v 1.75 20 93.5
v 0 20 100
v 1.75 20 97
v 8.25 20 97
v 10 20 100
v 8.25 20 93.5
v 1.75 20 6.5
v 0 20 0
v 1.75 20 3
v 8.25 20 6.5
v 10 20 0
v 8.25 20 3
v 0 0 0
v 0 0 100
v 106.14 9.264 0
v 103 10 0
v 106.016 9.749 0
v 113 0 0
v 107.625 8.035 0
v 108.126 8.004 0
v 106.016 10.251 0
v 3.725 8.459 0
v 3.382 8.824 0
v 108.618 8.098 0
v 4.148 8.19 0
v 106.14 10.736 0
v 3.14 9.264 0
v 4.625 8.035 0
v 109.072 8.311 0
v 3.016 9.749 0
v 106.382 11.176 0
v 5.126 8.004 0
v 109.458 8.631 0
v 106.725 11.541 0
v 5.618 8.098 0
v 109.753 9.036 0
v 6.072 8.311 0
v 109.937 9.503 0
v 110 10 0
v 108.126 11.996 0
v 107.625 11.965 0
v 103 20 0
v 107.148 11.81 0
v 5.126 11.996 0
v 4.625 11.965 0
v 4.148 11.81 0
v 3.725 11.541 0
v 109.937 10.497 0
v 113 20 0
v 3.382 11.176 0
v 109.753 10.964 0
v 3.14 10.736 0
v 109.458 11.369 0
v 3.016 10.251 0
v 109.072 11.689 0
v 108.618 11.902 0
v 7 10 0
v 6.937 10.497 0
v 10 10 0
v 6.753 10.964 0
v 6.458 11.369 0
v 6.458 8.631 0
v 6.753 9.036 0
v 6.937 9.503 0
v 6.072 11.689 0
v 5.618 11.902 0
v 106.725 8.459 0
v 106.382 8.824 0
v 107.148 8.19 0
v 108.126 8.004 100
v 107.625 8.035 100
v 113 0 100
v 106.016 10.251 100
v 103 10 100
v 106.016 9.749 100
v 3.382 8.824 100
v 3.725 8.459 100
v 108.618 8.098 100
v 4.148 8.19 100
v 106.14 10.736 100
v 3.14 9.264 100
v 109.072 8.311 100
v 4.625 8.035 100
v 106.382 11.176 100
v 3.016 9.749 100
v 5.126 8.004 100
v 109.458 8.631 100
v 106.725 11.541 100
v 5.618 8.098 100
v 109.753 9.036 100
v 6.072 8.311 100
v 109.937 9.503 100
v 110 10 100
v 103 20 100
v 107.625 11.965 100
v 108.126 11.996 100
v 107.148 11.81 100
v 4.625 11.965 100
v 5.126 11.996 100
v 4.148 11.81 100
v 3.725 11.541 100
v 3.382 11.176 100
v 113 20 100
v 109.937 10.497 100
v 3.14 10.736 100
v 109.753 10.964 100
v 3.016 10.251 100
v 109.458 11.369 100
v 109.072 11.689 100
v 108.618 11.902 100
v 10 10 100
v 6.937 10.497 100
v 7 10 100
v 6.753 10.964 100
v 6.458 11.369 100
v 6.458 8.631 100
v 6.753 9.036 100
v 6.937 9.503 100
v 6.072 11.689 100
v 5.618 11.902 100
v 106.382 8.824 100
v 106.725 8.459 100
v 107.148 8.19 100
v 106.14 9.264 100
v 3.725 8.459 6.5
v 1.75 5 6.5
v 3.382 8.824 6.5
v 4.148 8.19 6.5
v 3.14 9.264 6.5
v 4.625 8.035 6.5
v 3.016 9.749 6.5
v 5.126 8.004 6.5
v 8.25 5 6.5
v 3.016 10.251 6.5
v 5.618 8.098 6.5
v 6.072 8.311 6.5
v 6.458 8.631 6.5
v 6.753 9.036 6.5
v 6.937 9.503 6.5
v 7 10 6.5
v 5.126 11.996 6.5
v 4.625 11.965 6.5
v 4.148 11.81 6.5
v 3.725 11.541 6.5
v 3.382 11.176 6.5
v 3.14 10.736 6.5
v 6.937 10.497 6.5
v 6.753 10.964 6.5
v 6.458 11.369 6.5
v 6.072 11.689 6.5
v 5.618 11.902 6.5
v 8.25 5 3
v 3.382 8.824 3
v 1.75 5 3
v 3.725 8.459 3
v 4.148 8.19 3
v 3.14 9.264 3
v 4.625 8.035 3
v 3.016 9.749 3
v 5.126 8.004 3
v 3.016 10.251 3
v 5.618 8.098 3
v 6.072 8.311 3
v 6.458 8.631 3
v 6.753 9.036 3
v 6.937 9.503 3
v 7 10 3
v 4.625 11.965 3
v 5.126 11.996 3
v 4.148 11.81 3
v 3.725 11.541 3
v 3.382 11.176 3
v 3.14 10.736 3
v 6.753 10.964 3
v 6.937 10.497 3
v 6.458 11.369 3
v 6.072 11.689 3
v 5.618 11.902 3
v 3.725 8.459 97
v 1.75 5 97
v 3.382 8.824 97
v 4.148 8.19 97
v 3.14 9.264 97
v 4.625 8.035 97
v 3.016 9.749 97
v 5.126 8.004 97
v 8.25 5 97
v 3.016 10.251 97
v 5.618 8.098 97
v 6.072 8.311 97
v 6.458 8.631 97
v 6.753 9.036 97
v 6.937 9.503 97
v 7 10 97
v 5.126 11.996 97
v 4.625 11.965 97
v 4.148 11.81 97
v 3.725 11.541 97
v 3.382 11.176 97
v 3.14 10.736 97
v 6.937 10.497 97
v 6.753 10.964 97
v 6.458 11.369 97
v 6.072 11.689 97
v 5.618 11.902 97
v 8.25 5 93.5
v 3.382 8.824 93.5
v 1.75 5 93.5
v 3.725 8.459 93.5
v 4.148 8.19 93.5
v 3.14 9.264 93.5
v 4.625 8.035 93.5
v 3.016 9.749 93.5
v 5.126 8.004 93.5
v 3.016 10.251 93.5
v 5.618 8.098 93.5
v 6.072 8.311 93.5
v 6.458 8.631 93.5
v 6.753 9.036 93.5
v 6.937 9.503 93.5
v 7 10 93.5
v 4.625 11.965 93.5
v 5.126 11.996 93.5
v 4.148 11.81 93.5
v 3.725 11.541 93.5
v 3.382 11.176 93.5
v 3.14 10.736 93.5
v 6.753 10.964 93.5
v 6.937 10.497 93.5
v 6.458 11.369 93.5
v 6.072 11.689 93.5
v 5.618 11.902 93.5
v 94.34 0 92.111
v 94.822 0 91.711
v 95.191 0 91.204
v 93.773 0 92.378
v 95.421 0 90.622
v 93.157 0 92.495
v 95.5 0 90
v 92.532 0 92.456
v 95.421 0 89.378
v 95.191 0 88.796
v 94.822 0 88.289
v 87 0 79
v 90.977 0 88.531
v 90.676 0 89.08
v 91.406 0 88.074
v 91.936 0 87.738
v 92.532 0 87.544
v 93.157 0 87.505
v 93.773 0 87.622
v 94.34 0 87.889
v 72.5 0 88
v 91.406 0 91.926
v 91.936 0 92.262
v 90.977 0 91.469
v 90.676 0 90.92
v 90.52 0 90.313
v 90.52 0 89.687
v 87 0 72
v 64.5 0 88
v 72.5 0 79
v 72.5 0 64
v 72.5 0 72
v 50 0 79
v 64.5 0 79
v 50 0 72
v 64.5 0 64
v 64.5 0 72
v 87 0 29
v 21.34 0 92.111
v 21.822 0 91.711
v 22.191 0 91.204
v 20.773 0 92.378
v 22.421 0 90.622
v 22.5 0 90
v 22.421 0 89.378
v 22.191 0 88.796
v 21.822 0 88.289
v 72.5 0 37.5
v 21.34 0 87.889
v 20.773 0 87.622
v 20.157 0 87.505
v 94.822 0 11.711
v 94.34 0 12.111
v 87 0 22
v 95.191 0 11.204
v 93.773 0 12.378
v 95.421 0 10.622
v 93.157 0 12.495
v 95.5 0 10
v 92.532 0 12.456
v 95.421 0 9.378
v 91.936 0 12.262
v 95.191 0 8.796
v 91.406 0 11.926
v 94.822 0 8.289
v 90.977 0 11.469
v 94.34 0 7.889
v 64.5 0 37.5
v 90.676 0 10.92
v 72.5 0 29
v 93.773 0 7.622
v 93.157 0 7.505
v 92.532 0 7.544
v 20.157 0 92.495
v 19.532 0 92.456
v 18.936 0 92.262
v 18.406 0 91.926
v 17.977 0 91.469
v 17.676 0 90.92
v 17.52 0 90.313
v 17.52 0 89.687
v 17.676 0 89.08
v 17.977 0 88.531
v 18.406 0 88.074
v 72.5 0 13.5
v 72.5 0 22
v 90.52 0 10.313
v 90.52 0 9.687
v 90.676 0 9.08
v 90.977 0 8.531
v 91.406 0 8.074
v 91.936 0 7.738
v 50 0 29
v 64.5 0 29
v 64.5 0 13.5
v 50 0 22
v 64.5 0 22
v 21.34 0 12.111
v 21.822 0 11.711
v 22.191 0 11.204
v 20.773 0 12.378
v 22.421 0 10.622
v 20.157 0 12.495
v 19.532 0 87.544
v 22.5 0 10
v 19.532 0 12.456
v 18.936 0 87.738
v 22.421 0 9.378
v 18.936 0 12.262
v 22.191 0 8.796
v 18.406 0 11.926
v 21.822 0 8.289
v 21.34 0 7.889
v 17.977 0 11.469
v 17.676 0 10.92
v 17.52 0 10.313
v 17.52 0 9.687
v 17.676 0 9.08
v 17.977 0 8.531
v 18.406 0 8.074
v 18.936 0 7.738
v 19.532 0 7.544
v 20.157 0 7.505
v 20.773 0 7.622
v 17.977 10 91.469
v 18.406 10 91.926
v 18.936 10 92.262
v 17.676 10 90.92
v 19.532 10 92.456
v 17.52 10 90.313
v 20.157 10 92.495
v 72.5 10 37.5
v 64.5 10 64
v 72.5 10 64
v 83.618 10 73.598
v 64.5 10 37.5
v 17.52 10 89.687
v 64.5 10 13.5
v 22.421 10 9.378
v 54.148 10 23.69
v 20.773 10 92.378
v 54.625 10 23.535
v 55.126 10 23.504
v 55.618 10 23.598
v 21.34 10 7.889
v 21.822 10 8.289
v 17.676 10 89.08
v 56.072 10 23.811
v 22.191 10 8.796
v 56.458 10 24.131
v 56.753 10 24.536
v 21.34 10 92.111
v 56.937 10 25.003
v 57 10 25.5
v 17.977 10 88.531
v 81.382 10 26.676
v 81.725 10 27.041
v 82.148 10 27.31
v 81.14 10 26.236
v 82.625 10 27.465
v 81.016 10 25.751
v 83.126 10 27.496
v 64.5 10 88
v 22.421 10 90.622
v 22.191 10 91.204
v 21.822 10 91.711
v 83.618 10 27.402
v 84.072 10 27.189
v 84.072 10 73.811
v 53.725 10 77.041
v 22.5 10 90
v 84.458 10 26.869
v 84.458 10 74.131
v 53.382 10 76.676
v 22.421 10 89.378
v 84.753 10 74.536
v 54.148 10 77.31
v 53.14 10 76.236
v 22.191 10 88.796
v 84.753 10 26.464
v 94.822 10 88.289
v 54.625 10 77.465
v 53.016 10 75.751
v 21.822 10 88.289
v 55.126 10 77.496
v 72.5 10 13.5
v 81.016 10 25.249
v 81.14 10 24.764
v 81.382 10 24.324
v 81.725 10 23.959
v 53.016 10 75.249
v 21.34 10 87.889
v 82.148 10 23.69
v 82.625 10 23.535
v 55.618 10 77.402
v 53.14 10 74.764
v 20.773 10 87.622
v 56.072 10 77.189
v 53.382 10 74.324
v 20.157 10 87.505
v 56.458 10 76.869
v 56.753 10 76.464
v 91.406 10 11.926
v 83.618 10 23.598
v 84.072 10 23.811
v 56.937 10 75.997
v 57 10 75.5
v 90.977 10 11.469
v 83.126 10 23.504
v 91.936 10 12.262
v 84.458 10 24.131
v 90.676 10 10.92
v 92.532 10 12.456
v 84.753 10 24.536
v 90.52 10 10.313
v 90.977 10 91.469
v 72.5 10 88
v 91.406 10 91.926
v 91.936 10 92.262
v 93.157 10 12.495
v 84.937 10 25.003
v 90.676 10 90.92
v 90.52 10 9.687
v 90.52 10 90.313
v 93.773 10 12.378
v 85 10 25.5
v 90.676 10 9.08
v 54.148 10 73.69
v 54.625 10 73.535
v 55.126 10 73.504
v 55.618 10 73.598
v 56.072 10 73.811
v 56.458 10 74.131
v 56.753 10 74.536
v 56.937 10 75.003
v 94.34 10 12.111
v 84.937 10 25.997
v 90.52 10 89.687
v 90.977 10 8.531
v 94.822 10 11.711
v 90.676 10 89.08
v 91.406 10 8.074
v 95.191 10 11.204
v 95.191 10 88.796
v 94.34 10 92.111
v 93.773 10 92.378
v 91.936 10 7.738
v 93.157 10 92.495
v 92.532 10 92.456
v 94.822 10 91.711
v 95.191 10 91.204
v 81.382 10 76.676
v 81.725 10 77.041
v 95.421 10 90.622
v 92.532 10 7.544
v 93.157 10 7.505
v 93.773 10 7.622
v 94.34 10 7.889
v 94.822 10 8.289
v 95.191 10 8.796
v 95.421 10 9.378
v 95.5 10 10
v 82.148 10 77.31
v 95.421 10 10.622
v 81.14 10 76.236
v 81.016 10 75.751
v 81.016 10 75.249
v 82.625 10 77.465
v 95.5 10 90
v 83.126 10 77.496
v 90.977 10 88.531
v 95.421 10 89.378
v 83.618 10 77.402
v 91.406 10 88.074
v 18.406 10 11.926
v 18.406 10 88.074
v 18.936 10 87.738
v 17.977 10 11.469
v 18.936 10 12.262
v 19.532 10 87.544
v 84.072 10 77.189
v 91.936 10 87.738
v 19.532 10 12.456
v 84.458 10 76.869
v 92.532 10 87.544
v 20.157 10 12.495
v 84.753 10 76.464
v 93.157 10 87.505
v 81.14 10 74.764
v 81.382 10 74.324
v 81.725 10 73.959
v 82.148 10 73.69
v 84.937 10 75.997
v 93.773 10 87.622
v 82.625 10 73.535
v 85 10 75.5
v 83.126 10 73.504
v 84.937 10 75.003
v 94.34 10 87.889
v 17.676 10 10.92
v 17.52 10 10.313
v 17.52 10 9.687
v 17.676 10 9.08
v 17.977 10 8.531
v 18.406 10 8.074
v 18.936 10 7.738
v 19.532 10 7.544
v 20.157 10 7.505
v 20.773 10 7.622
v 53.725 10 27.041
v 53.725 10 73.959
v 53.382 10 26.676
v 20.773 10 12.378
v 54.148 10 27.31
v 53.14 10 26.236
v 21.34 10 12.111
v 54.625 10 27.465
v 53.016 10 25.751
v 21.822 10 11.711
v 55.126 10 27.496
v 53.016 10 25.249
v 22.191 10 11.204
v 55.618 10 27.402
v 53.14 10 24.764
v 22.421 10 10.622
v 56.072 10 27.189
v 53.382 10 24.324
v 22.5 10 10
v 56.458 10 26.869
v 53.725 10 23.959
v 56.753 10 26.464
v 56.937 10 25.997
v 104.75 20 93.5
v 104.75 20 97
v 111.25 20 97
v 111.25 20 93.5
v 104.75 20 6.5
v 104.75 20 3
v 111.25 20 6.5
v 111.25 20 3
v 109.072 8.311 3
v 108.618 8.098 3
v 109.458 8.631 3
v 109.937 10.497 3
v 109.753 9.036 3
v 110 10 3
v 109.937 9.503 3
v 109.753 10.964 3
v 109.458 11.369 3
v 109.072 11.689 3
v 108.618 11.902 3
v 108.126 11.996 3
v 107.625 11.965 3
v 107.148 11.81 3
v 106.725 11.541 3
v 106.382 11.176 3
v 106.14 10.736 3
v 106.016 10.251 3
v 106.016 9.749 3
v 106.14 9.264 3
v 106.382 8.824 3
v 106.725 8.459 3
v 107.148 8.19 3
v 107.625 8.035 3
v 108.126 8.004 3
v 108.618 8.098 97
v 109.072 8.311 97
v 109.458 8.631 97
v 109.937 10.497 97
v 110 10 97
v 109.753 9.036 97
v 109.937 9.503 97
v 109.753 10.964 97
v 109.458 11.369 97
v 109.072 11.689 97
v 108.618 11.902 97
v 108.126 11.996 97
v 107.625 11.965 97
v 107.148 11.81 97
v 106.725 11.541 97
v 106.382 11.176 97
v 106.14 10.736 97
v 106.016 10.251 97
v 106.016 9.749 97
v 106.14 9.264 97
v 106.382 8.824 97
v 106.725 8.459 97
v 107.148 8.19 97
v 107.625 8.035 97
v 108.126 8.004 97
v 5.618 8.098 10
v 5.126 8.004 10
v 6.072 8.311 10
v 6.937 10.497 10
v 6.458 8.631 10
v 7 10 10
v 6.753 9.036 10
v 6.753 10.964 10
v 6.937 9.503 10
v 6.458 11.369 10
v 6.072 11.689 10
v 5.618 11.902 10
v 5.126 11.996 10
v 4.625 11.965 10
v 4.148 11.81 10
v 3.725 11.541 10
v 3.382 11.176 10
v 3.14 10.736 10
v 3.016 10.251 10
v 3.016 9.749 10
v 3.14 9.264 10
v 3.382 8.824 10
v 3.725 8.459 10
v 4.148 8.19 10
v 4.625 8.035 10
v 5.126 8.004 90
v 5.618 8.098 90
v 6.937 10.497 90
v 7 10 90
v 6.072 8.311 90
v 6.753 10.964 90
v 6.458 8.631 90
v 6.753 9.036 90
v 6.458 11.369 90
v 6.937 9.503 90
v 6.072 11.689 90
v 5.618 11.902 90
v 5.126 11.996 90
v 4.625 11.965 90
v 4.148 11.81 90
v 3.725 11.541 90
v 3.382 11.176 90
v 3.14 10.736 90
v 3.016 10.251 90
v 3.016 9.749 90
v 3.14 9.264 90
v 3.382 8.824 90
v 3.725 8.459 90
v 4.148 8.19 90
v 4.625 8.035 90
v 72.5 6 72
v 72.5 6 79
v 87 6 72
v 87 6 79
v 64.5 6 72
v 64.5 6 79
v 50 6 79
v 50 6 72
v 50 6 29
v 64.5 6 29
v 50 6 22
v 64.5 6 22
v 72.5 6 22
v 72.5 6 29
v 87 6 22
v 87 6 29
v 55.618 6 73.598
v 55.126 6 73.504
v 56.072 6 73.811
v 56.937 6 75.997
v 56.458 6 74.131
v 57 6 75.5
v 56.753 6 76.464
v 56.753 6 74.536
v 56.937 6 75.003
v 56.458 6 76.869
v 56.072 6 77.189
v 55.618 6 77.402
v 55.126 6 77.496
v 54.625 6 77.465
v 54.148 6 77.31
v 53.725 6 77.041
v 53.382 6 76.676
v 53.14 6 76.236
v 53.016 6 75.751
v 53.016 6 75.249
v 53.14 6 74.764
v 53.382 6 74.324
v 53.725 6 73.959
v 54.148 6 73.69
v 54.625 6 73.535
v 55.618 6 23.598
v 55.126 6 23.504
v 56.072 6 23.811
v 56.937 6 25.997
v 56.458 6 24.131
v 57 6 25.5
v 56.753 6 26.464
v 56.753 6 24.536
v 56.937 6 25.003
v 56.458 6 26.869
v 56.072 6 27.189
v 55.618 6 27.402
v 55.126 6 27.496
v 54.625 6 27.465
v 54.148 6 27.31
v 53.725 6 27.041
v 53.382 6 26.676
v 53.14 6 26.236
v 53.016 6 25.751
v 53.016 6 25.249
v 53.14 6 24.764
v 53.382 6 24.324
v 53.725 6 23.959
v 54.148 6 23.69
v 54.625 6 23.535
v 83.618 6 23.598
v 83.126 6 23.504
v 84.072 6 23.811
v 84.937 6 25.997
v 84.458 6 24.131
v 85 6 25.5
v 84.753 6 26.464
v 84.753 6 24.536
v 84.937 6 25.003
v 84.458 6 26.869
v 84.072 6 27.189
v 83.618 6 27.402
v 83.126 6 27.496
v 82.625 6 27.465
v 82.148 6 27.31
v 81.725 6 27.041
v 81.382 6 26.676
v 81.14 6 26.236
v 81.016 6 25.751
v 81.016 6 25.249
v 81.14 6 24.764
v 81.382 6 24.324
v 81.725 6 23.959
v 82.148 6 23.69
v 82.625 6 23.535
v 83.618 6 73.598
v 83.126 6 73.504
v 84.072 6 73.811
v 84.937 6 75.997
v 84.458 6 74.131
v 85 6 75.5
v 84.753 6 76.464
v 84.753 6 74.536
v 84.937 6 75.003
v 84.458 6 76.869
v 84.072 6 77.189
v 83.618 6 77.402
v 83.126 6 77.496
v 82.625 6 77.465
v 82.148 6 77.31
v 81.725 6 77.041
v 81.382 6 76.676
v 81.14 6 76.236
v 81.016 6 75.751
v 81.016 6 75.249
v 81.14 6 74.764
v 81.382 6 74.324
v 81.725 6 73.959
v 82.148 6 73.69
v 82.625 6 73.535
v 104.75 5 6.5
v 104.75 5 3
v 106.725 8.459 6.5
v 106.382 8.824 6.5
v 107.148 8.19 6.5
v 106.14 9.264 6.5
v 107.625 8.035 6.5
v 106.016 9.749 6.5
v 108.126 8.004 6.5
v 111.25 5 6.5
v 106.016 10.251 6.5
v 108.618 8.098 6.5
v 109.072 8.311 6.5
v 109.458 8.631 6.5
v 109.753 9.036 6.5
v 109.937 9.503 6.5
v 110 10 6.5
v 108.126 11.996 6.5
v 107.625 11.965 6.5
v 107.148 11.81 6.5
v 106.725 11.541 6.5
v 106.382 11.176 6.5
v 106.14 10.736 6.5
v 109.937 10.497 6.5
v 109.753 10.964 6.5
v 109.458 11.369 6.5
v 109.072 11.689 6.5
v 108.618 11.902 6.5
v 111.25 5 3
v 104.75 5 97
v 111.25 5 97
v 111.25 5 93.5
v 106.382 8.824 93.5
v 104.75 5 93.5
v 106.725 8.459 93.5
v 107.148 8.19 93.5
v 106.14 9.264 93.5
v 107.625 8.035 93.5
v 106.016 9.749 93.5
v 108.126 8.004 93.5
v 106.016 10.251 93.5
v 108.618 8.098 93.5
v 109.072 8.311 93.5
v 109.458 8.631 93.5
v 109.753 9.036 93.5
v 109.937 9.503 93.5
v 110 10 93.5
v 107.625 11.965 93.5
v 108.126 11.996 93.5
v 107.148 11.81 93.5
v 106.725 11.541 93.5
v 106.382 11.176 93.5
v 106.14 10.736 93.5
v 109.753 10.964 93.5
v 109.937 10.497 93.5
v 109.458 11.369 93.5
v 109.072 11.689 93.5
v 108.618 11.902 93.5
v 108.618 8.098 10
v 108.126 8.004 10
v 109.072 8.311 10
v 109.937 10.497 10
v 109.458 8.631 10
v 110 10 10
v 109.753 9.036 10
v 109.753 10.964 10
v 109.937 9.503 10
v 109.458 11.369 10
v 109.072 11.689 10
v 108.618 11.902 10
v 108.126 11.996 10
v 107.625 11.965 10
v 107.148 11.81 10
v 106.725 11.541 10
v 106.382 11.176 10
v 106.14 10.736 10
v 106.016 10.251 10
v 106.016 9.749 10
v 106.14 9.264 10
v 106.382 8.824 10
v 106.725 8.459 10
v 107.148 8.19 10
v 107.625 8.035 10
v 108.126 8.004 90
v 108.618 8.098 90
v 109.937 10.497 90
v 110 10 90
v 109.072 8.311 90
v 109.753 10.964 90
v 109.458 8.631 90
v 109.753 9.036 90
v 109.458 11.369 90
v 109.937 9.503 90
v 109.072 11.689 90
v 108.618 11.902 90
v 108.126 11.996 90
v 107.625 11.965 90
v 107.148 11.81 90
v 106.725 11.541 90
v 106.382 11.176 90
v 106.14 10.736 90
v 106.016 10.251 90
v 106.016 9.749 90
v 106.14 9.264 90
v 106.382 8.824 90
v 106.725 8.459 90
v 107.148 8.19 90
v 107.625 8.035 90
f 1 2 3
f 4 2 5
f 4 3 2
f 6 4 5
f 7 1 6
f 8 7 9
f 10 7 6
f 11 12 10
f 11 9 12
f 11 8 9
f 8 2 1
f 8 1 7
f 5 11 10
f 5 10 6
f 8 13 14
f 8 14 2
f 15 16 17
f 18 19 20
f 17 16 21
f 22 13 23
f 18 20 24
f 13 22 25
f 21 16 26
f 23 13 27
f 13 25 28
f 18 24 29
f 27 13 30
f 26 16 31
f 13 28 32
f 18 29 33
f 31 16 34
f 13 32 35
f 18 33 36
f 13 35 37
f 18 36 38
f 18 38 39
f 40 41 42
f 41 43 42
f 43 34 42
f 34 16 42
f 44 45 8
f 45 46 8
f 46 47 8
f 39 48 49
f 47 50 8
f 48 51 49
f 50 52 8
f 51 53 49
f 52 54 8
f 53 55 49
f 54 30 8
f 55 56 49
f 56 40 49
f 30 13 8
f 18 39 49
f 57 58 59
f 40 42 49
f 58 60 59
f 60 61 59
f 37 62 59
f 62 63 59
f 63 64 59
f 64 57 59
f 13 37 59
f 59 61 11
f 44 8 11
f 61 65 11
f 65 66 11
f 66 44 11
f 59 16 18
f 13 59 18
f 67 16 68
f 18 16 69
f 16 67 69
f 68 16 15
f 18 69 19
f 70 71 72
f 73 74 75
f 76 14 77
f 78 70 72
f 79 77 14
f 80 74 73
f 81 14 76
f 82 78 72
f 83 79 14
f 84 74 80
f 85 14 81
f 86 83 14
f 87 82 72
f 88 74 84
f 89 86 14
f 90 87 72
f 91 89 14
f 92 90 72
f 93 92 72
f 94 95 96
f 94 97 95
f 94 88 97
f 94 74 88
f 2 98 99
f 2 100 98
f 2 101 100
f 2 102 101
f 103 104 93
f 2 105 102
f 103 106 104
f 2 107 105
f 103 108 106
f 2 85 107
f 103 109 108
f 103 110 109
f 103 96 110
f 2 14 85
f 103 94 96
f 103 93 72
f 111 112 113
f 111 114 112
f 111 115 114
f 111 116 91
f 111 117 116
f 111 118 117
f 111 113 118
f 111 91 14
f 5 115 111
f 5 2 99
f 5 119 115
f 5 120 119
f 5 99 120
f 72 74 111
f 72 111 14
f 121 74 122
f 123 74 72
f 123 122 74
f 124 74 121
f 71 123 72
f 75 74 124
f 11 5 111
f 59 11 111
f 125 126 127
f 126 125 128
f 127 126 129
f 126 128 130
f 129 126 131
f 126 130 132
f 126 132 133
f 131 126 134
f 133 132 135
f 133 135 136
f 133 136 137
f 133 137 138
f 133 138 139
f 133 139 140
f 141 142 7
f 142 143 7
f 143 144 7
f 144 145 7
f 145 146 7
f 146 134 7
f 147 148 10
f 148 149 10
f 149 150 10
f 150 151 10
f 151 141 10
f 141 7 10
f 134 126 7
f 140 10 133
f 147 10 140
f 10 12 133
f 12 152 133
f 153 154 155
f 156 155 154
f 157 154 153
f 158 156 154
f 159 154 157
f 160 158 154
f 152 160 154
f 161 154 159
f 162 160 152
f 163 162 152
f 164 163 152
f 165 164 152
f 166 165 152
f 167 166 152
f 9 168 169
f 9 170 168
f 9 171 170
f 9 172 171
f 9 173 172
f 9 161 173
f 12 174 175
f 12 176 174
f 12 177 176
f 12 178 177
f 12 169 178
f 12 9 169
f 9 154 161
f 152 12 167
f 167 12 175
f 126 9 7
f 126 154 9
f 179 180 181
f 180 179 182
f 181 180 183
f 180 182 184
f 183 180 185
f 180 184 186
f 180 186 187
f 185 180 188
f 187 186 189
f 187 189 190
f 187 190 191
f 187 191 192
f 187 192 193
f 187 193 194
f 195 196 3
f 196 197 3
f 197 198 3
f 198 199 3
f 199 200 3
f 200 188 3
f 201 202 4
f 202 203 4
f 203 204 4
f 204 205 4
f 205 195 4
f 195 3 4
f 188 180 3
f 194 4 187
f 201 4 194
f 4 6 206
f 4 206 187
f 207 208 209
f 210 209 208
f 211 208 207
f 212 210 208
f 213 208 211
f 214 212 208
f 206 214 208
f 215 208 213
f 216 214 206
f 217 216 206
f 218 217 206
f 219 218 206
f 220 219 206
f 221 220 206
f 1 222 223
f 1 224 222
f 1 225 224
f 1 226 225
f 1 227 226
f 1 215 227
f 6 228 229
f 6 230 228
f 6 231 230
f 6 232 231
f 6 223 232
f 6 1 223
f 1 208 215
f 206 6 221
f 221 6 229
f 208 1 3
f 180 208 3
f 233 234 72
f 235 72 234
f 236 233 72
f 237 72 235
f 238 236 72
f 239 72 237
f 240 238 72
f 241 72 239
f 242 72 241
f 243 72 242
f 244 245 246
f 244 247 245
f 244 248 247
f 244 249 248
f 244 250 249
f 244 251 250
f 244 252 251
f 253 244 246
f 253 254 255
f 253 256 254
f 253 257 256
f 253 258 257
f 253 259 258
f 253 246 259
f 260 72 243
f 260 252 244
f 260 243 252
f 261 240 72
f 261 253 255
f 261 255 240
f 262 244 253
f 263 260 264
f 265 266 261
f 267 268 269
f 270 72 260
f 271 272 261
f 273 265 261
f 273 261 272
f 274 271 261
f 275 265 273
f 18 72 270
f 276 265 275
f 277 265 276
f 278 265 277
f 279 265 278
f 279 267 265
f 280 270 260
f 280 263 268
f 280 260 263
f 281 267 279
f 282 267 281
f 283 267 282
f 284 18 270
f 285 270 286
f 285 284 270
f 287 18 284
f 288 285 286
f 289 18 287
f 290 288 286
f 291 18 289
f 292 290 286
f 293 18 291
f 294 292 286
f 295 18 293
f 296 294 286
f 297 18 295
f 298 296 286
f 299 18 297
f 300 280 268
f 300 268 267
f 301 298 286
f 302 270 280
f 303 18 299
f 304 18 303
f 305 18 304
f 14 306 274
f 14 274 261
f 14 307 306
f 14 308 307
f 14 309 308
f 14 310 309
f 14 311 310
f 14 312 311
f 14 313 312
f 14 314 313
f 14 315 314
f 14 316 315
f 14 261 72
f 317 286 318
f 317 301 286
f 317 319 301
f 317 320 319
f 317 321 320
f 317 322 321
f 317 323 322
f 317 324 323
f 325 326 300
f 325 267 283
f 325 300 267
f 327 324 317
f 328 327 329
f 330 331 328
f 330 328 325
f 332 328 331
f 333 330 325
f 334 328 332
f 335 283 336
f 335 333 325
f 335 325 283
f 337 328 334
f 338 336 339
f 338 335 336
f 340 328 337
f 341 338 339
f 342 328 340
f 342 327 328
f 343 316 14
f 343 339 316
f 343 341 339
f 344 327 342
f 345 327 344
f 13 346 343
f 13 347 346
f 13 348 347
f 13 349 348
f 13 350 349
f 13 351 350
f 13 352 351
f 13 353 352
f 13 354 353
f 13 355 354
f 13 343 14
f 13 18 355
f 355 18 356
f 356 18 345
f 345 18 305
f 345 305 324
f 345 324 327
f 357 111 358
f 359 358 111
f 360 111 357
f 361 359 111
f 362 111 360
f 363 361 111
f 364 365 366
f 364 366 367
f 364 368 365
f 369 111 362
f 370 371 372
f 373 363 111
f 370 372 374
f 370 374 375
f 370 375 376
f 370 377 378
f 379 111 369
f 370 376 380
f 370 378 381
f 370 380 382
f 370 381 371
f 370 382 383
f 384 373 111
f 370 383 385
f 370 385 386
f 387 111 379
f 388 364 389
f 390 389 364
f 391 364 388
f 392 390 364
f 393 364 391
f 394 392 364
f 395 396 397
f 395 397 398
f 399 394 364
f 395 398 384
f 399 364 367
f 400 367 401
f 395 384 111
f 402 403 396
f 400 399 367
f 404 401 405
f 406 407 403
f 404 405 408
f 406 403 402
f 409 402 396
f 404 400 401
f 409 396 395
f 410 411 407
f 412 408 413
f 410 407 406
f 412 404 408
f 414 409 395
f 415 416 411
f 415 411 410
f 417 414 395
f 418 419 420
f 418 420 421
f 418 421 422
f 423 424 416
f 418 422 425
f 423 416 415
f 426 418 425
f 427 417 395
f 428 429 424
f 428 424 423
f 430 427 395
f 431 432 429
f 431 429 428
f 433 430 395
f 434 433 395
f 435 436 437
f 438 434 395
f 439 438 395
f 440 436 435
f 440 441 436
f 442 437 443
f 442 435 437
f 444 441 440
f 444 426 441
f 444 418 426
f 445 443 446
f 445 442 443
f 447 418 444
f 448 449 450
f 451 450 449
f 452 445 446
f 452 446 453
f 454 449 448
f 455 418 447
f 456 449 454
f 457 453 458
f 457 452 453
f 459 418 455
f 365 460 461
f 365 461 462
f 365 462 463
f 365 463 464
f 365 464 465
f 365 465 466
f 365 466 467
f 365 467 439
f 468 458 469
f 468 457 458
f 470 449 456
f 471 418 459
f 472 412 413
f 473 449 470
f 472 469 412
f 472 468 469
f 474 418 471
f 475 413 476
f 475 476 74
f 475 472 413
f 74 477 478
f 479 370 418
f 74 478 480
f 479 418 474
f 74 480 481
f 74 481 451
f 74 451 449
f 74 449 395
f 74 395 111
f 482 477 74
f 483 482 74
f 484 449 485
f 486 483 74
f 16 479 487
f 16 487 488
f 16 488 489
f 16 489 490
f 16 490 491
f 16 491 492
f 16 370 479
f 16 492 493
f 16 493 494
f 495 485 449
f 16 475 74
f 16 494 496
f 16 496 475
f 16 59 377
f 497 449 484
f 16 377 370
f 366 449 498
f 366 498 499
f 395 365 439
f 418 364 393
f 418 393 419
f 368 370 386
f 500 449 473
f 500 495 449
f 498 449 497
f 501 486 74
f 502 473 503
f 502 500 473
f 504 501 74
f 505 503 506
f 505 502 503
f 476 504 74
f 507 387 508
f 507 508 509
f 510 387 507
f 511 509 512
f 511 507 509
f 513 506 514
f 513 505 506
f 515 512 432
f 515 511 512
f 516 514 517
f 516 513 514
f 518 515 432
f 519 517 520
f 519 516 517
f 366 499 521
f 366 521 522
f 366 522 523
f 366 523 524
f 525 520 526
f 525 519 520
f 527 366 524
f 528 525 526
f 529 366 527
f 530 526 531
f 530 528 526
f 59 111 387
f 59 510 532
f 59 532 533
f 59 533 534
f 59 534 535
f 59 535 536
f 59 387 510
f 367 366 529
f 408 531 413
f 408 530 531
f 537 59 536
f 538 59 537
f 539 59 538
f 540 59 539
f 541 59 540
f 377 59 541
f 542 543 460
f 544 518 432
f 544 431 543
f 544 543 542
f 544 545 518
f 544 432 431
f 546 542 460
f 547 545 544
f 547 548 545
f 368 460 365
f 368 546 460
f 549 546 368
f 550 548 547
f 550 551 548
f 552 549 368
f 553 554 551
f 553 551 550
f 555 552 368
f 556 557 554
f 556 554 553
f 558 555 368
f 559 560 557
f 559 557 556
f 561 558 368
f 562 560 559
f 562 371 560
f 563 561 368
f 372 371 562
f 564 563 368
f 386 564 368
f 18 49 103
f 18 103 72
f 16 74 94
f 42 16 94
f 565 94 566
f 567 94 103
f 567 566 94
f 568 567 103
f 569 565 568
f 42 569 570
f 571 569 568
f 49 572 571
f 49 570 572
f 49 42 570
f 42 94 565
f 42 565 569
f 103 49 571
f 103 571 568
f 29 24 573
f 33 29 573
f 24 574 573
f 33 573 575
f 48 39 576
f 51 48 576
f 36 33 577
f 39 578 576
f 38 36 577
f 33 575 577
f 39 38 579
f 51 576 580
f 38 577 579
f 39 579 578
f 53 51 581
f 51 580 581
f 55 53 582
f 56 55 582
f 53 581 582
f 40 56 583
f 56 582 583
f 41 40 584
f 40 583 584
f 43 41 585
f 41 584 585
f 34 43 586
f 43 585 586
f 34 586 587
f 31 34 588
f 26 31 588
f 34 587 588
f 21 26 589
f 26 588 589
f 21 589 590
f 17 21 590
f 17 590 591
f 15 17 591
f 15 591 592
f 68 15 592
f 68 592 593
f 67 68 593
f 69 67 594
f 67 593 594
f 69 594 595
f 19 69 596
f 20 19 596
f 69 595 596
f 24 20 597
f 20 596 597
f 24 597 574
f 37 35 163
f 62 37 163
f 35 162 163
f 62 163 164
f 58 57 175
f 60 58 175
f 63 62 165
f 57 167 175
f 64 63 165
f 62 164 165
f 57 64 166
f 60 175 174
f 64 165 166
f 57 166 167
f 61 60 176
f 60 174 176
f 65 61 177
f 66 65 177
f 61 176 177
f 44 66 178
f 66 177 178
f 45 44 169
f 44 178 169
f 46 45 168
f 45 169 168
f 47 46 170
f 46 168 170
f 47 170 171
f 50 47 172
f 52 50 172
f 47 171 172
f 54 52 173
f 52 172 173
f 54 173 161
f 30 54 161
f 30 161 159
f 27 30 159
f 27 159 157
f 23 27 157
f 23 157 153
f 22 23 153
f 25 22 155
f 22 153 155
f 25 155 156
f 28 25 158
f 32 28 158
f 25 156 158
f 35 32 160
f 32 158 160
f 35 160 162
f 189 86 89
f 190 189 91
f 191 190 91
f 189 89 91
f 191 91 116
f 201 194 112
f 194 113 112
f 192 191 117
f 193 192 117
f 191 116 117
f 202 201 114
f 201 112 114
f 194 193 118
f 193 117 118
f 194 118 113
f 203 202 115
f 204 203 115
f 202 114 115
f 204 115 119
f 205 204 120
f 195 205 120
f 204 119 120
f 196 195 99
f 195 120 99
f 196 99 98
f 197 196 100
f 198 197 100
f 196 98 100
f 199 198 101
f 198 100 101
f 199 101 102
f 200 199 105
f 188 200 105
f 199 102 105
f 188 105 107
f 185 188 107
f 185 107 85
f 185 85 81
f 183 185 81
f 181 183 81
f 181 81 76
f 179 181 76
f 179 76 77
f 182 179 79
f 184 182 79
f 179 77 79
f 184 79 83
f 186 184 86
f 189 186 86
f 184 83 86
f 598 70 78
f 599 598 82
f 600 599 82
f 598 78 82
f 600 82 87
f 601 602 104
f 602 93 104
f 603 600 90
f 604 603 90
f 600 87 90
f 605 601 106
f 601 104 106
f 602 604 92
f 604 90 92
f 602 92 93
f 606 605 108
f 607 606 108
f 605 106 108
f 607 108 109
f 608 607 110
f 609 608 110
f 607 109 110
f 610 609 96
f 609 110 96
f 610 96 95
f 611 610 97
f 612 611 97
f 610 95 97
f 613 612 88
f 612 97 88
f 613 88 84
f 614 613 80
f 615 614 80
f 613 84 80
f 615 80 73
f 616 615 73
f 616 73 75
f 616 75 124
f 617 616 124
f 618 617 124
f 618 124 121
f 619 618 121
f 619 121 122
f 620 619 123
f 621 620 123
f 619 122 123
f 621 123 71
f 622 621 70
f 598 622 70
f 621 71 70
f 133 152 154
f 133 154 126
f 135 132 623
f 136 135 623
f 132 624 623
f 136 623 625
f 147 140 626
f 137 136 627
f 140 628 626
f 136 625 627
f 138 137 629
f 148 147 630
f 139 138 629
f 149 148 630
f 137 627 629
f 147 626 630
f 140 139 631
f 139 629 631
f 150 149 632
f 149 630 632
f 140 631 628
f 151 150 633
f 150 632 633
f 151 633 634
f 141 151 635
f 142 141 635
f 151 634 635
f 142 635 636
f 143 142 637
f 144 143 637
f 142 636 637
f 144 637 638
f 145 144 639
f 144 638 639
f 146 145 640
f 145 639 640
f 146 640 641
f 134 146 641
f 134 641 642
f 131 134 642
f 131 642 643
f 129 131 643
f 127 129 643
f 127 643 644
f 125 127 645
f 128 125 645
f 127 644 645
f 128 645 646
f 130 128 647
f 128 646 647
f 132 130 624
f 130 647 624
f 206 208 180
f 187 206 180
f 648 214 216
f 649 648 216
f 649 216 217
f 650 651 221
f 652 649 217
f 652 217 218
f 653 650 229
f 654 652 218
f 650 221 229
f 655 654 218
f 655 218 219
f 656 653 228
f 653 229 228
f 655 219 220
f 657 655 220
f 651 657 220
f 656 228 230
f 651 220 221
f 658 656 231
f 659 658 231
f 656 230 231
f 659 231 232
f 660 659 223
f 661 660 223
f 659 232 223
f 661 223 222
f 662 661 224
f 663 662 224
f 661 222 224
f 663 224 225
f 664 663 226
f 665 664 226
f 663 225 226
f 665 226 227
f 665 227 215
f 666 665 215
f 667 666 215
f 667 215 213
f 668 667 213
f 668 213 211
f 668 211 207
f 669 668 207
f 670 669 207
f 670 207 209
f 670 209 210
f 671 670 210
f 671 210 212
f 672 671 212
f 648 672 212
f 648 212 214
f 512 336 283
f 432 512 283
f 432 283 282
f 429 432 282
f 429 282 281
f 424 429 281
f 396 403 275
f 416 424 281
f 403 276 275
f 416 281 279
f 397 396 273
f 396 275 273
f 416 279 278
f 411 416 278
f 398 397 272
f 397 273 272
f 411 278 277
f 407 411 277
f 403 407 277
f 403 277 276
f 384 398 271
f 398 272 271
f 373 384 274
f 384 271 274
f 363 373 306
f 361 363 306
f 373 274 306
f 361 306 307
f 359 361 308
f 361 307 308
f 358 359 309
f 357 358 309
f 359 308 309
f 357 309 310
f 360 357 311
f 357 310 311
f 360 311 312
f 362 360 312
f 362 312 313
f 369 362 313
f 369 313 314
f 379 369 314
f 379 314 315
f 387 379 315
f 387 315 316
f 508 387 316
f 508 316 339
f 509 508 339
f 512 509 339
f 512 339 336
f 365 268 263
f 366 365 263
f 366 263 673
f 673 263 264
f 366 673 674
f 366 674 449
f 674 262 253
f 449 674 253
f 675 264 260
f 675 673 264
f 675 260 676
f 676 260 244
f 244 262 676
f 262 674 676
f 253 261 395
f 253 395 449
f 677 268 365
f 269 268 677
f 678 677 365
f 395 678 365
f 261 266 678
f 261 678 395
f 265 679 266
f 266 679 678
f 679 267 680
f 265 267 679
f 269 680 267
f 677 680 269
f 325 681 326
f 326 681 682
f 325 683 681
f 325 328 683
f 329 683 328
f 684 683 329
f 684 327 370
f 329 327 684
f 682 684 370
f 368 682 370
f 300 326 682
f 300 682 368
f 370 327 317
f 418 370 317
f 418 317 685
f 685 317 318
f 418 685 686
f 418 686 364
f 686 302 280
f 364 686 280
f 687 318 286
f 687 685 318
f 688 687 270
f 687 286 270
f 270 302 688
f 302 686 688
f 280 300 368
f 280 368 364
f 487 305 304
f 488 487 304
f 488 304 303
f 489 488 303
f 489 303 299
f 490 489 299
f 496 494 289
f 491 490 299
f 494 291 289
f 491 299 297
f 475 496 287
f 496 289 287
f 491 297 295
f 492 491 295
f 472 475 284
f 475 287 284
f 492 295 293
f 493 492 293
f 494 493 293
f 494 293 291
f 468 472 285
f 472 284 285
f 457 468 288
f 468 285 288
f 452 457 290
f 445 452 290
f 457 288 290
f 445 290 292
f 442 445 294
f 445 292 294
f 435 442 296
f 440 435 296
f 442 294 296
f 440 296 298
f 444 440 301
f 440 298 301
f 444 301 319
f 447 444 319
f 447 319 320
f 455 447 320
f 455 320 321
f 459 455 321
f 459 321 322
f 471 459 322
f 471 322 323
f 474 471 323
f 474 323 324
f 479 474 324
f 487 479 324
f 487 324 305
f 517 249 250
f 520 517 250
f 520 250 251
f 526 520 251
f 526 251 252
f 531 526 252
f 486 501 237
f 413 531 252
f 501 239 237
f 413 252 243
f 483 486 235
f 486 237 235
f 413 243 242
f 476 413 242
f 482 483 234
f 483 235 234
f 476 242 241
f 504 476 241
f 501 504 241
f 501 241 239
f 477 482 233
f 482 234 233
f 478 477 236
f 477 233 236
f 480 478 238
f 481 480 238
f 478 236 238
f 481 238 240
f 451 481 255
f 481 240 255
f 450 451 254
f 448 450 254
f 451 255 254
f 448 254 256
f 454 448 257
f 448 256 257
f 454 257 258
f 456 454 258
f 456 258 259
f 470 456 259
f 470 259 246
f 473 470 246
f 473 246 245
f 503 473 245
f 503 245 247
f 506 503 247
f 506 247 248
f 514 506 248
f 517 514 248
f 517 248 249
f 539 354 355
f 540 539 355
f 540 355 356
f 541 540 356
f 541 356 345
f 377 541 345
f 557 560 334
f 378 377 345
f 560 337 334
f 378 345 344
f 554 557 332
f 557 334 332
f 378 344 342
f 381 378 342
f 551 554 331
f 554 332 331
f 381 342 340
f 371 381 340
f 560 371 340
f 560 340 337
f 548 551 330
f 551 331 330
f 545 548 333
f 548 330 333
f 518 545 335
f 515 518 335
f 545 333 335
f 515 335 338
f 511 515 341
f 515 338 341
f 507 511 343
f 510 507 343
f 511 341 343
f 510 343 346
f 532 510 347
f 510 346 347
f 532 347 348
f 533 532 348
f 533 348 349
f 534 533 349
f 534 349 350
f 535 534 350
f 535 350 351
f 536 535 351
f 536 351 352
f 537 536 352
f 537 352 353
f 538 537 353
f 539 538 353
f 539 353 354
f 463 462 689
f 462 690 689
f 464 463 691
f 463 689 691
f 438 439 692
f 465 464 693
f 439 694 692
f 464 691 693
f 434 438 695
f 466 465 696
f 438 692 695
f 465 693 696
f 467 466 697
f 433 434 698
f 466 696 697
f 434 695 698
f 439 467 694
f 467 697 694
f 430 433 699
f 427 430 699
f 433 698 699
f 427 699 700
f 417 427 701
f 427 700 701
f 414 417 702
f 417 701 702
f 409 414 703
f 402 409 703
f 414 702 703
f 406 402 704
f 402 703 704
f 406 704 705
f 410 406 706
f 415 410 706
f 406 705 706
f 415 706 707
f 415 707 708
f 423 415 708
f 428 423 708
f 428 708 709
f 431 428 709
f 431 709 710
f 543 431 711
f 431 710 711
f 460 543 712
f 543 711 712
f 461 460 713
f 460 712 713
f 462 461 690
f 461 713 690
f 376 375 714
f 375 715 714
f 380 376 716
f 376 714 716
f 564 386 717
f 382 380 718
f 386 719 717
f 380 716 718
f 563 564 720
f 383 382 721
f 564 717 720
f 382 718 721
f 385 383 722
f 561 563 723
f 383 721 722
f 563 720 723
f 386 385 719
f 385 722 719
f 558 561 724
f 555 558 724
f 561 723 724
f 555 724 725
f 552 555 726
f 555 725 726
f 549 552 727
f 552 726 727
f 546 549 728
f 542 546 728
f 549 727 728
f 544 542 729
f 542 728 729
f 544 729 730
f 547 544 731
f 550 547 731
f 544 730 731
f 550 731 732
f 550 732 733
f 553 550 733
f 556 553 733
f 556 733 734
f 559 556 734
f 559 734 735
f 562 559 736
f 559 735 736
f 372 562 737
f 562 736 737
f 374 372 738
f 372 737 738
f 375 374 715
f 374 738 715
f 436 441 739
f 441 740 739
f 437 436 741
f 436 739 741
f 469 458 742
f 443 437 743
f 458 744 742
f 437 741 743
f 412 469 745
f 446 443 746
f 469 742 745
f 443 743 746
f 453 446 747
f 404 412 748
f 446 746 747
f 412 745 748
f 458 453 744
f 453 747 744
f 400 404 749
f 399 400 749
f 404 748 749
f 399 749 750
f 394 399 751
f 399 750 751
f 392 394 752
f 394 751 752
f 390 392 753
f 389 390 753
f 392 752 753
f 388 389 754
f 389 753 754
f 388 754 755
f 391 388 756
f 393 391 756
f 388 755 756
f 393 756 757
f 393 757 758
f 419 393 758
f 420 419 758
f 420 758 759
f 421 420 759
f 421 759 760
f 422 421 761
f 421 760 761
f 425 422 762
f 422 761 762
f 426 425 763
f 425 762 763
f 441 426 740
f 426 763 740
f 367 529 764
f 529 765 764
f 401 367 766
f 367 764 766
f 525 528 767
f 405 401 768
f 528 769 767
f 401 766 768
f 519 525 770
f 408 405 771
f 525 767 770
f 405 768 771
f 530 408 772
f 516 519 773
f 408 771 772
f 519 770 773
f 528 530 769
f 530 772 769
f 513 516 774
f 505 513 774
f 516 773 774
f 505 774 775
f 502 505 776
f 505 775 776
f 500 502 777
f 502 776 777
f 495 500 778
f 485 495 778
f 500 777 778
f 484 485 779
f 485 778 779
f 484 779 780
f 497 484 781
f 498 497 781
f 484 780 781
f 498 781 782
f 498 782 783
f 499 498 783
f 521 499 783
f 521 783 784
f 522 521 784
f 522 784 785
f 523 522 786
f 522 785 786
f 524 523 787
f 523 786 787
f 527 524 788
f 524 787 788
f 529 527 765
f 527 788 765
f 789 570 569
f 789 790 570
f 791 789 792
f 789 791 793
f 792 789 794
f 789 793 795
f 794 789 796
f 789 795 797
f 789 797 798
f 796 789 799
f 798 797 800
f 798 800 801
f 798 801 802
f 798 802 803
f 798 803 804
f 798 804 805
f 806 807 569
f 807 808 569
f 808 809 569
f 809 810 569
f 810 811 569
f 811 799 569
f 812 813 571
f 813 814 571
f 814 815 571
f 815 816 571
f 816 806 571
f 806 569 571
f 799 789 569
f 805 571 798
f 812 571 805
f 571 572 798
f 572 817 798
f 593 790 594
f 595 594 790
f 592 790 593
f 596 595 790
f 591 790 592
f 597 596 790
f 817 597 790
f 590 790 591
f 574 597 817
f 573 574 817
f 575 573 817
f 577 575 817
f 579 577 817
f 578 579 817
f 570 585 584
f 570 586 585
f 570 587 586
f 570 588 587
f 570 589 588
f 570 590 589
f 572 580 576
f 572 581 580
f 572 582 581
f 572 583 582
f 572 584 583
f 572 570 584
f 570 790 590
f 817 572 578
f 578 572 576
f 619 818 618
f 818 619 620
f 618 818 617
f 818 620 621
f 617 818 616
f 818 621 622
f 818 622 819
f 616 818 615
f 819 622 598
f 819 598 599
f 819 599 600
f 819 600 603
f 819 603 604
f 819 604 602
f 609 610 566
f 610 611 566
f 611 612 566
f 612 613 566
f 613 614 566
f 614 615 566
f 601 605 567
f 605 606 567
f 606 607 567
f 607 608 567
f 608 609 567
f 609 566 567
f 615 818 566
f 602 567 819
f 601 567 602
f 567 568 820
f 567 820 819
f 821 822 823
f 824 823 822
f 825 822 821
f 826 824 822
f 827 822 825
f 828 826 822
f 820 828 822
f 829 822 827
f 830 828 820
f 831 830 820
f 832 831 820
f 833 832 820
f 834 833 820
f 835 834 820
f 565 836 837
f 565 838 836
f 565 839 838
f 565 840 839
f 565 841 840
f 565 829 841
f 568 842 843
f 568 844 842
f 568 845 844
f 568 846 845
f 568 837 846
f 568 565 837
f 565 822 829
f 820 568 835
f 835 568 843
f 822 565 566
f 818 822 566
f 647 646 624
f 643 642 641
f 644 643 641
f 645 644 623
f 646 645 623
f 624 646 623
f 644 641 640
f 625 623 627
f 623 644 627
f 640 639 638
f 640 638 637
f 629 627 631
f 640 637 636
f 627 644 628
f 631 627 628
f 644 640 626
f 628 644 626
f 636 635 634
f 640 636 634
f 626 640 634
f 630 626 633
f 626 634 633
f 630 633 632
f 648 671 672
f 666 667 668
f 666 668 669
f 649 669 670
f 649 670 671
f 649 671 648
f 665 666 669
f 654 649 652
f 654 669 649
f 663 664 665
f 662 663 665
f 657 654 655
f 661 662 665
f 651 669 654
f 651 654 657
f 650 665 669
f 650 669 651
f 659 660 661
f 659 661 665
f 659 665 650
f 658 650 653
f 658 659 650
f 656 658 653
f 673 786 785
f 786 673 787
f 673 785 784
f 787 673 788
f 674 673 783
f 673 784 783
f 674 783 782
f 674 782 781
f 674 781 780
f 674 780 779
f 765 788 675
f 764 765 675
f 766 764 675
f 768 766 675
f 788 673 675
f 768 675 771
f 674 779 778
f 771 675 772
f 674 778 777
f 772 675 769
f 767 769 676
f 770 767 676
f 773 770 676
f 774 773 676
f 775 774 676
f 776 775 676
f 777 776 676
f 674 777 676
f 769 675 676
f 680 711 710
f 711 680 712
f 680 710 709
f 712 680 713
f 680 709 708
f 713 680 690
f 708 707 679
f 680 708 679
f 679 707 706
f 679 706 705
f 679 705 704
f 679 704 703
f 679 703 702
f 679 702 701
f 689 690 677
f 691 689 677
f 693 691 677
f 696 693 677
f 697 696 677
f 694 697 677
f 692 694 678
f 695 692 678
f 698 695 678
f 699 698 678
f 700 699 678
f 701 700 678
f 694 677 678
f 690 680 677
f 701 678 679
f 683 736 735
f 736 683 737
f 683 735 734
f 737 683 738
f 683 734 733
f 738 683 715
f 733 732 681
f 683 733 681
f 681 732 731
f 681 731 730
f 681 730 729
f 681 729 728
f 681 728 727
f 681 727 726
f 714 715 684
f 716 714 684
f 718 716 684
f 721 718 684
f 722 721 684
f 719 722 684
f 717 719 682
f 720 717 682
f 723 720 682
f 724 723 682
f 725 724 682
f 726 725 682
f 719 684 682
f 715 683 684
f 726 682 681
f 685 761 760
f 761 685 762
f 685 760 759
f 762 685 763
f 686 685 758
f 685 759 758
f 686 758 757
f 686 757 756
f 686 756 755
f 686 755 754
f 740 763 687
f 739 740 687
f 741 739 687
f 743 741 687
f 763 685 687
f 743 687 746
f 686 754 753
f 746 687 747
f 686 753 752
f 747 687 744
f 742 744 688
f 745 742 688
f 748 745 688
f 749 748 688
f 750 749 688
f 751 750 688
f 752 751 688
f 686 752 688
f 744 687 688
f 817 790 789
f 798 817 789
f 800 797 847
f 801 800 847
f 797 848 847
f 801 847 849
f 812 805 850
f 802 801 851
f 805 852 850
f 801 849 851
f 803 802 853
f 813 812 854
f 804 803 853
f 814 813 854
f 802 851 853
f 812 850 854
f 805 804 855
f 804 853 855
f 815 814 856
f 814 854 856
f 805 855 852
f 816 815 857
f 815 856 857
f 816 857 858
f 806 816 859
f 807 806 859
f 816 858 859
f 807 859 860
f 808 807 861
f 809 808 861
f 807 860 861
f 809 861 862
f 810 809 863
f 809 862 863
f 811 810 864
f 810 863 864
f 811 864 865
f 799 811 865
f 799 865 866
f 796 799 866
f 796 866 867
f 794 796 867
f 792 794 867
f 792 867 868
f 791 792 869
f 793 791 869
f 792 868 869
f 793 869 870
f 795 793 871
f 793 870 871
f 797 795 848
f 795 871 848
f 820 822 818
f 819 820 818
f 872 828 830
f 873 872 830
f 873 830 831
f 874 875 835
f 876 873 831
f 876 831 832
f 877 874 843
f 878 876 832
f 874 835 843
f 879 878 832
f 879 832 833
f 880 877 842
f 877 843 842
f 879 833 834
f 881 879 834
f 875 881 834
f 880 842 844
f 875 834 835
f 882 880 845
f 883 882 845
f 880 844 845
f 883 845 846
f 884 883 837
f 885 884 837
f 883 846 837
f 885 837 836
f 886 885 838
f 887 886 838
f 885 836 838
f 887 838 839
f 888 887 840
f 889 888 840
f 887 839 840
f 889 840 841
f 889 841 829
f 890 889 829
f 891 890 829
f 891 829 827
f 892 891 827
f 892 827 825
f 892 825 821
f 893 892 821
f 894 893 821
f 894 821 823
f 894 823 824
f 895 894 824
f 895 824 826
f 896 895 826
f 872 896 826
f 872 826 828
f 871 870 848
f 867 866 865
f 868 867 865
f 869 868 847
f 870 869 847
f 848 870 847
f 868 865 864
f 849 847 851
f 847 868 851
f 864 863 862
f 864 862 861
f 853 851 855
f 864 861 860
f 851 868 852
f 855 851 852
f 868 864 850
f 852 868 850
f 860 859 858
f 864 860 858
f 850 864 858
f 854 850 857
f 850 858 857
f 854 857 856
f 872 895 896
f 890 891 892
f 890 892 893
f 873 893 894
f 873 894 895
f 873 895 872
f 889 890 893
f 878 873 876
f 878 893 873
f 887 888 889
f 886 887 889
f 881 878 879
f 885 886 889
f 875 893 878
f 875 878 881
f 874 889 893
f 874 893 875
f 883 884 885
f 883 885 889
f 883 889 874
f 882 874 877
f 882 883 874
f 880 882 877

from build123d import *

# Parameters (mm, degrees)
CYLINDER002_R          = 2
CYLINDER002_DEPTH      = 11
ARRAY002_X_COUNT       = 2
ARRAY002_X_PITCH       = 103
ARRAY002_Z_COUNT       = 2
ARRAY002_Z_PITCH       = 91
BOX_W                  = 8
BOX_H                  = 20
BOX_DEPTH              = 24
BOX001_W               = 8
BOX001_H               = 20
BOX001_DEPTH           = 24
BOX002_W               = 37
BOX002_H               = 7
BOX002_DEPTH           = 7
BOX003_W               = 37
BOX003_H               = 7
BOX003_DEPTH           = 7
CYLINDER_R             = 2.5
CYLINDER_DEPTH         = 20
CYLINDER_ROLL_ANGLE    = 90
ARRAY_X_COUNT          = 2
ARRAY_X_PITCH          = 73
ARRAY_Z_COUNT          = 2
ARRAY_Z_PITCH          = 80
CYLINDER001_R          = 2
CYLINDER001_DEPTH      = 20
CYLINDER001_ROLL_ANGLE = 90
ARRAY001_X_COUNT       = 2
ARRAY001_X_PITCH       = 28
ARRAY001_Z_COUNT       = 2
ARRAY001_Z_PITCH       = 50
BOX004_W               = 6.5
BOX004_H               = 16
BOX004_DEPTH           = 3.5
ARRAY003_X_COUNT       = 2
ARRAY003_X_PITCH       = 103
ARRAY003_Z_COUNT       = 2
ARRAY003_Z_PITCH       = 90.5
EXTRUDE001_DEPTH       = 100


with BuildPart() as h_bolts_union:
    # Cylinder002 → Cylinder002 (new body)
    with BuildSketch(Plane(origin=(5, 10, -1), x_dir=(1, 0, 0), z_dir=(0, 0, 1))):
        Circle(CYLINDER002_R)
    extrude(amount=CYLINDER002_DEPTH)

    # Array002 X: h_bolts_union ×2


with BuildPart() as h_bolts_union_1:
    add(h_bolts_union.part)
    with Locations(*[(i * ARRAY002_X_PITCH, 0, 0) for i in range(1, ARRAY002_X_COUNT)]):
        add(h_bolts_union.part)

    # Array002 Z: h_bolts_union ×2


with BuildPart() as h_bolts_union_2:
    add(h_bolts_union_1.part)
    with Locations(*[(0, 0, i * ARRAY002_Z_PITCH) for i in range(1, ARRAY002_Z_COUNT)]):
        add(h_bolts_union_1.part)


with BuildPart() as h_bearing_up_v:
    # Box → Box (new body)
    with BuildSketch(Plane(origin=(64.5, -5, 64), x_dir=(1, 0, 0), z_dir=(0, 0, 1))):
        with Locations((4, 10)):
            Rectangle(BOX_W, BOX_H)
    extrude(amount=BOX_DEPTH)


with BuildPart() as h_bearing_dn_v:
    # Box001 → Box001 (new body)
    with BuildSketch(Plane(origin=(64.5, -5, 13.5), x_dir=(1, 0, 0), z_dir=(0, 0, 1))):
        with Locations((4, 10)):
            Rectangle(BOX001_W, BOX001_H)
    extrude(amount=BOX001_DEPTH)


with BuildPart() as h_bearing_dn_h:
    # Box002 → Box002 (new body)
    with BuildSketch(Plane(origin=(50, -1, 22), x_dir=(1, 0, 0), z_dir=(0, 0, 1))):
        with Locations((18.5, 3.5)):
            Rectangle(BOX002_W, BOX002_H)
    extrude(amount=BOX002_DEPTH)


with BuildPart() as h_bearing_up_h:
    # Box003 → Box003 (new body)
    with BuildSketch(Plane(origin=(50, -1, 72), x_dir=(1, 0, 0), z_dir=(0, 0, 1))):
        with Locations((18.5, 3.5)):
            Rectangle(BOX003_W, BOX003_H)
    extrude(amount=BOX003_DEPTH)


with BuildPart() as h_holes_extra_arr:
    # Cylinder → Cylinder (new body)
    with BuildSketch(Plane.XY):
        Circle(CYLINDER_R)
    extrude(amount=CYLINDER_DEPTH)


with BuildPart() as h_holes_extra_arr_1:
    # Cylinder roll: moved
    add(h_holes_extra_arr.part.rotate(Axis((0, 0, 0), (1, 0, 0)), CYLINDER_ROLL_ANGLE))


with BuildPart() as h_holes_extra_arr_2:
    # Cylinder placement: moved
    add(h_holes_extra_arr_1.part.moved(Location((20, 15, 10))))

    # Array X: h_holes_extra_arr ×2


with BuildPart() as h_holes_extra_arr_3:
    add(h_holes_extra_arr_2.part)
    with Locations(*[(i * ARRAY_X_PITCH, 0, 0) for i in range(1, ARRAY_X_COUNT)]):
        add(h_holes_extra_arr_2.part)

    # Array Z: h_holes_extra_arr ×2


with BuildPart() as h_holes_extra_arr_4:
    add(h_holes_extra_arr_3.part)
    with Locations(*[(0, 0, i * ARRAY_Z_PITCH) for i in range(1, ARRAY_Z_COUNT)]):
        add(h_holes_extra_arr_3.part)


with BuildPart() as h_bearing_bolt:
    # Cylinder001 → Cylinder001 (new body)
    with BuildSketch(Plane.XY):
        Circle(CYLINDER001_R)
    extrude(amount=CYLINDER001_DEPTH)


with BuildPart() as h_bearing_bolt_1:
    # Cylinder001 roll: moved
    add(h_bearing_bolt.part.rotate(Axis((0, 0, 0), (1, 0, 0)), CYLINDER001_ROLL_ANGLE))


with BuildPart() as h_bearing_bolt_2:
    # Cylinder001 placement: moved
    add(h_bearing_bolt_1.part.moved(Location((55, 15, 25.5))))

    # Array001 X: h_bearing_bolt ×2


with BuildPart() as h_bearing_bolt_3:
    add(h_bearing_bolt_2.part)
    with Locations(*[(i * ARRAY001_X_PITCH, 0, 0) for i in range(1, ARRAY001_X_COUNT)]):
        add(h_bearing_bolt_2.part)

    # Array001 Z: h_bearing_bolt ×2


with BuildPart() as h_bearing_bolt_4:
    add(h_bearing_bolt_3.part)
    with Locations(*[(0, 0, i * ARRAY001_Z_PITCH) for i in range(1, ARRAY001_Z_COUNT)]):
        add(h_bearing_bolt_3.part)


with BuildPart() as holes:
    # Box004 → Box004 (new body)
    with BuildSketch(Plane(origin=(1.75, 5, 3), x_dir=(1, 0, 0), z_dir=(0, 0, 1))):
        with Locations((3.25, 8)):
            Rectangle(BOX004_W, BOX004_H)
    extrude(amount=BOX004_DEPTH)

    # Array003 X: holes ×2


with BuildPart() as holes_1:
    add(holes.part)
    with Locations(*[(i * ARRAY003_X_PITCH, 0, 0) for i in range(1, ARRAY003_X_COUNT)]):
        add(holes.part)

    # Array003 Z: holes ×2


with BuildPart() as holes_2:
    add(holes_1.part)
    with Locations(*[(0, 0, i * ARRAY003_Z_PITCH) for i in range(1, ARRAY003_Z_COUNT)]):
        add(holes_1.part)

    # Fusion: union h_bolts_union, h_bearing_up_v, h_bearing_dn_v, h_bearing_dn_h, h_bearing_up_h, h_holes_extra_arr, h_bearing_bolt
    add(h_bolts_union_2.part)
    add(h_bearing_up_v.part)
    add(h_bearing_dn_v.part)
    add(h_bearing_dn_h.part)
    add(h_bearing_up_h.part)
    add(h_holes_extra_arr_4.part)
    add(h_bearing_bolt_4.part)


with BuildPart() as cut:
    # Sketch → Extrude001 (new body)
    with BuildSketch(Plane.XY):
        Polygon((-56.5, 20), (-46.5, 20), (-46.5, 10), (46.5, 10), (46.5, 20), (56.5, 20), (56.5, 0), (-56.5, 0), align=None)
    extrude(amount=EXTRUDE001_DEPTH)


with BuildPart() as cut_1:
    # Extrude001 placement: moved
    add(cut.part.moved(Location((56.5, 0, 0))))

    # Cut: cut holes
    add(holes_2.part, mode=Mode.SUBTRACT)


solid = cut_1.part
